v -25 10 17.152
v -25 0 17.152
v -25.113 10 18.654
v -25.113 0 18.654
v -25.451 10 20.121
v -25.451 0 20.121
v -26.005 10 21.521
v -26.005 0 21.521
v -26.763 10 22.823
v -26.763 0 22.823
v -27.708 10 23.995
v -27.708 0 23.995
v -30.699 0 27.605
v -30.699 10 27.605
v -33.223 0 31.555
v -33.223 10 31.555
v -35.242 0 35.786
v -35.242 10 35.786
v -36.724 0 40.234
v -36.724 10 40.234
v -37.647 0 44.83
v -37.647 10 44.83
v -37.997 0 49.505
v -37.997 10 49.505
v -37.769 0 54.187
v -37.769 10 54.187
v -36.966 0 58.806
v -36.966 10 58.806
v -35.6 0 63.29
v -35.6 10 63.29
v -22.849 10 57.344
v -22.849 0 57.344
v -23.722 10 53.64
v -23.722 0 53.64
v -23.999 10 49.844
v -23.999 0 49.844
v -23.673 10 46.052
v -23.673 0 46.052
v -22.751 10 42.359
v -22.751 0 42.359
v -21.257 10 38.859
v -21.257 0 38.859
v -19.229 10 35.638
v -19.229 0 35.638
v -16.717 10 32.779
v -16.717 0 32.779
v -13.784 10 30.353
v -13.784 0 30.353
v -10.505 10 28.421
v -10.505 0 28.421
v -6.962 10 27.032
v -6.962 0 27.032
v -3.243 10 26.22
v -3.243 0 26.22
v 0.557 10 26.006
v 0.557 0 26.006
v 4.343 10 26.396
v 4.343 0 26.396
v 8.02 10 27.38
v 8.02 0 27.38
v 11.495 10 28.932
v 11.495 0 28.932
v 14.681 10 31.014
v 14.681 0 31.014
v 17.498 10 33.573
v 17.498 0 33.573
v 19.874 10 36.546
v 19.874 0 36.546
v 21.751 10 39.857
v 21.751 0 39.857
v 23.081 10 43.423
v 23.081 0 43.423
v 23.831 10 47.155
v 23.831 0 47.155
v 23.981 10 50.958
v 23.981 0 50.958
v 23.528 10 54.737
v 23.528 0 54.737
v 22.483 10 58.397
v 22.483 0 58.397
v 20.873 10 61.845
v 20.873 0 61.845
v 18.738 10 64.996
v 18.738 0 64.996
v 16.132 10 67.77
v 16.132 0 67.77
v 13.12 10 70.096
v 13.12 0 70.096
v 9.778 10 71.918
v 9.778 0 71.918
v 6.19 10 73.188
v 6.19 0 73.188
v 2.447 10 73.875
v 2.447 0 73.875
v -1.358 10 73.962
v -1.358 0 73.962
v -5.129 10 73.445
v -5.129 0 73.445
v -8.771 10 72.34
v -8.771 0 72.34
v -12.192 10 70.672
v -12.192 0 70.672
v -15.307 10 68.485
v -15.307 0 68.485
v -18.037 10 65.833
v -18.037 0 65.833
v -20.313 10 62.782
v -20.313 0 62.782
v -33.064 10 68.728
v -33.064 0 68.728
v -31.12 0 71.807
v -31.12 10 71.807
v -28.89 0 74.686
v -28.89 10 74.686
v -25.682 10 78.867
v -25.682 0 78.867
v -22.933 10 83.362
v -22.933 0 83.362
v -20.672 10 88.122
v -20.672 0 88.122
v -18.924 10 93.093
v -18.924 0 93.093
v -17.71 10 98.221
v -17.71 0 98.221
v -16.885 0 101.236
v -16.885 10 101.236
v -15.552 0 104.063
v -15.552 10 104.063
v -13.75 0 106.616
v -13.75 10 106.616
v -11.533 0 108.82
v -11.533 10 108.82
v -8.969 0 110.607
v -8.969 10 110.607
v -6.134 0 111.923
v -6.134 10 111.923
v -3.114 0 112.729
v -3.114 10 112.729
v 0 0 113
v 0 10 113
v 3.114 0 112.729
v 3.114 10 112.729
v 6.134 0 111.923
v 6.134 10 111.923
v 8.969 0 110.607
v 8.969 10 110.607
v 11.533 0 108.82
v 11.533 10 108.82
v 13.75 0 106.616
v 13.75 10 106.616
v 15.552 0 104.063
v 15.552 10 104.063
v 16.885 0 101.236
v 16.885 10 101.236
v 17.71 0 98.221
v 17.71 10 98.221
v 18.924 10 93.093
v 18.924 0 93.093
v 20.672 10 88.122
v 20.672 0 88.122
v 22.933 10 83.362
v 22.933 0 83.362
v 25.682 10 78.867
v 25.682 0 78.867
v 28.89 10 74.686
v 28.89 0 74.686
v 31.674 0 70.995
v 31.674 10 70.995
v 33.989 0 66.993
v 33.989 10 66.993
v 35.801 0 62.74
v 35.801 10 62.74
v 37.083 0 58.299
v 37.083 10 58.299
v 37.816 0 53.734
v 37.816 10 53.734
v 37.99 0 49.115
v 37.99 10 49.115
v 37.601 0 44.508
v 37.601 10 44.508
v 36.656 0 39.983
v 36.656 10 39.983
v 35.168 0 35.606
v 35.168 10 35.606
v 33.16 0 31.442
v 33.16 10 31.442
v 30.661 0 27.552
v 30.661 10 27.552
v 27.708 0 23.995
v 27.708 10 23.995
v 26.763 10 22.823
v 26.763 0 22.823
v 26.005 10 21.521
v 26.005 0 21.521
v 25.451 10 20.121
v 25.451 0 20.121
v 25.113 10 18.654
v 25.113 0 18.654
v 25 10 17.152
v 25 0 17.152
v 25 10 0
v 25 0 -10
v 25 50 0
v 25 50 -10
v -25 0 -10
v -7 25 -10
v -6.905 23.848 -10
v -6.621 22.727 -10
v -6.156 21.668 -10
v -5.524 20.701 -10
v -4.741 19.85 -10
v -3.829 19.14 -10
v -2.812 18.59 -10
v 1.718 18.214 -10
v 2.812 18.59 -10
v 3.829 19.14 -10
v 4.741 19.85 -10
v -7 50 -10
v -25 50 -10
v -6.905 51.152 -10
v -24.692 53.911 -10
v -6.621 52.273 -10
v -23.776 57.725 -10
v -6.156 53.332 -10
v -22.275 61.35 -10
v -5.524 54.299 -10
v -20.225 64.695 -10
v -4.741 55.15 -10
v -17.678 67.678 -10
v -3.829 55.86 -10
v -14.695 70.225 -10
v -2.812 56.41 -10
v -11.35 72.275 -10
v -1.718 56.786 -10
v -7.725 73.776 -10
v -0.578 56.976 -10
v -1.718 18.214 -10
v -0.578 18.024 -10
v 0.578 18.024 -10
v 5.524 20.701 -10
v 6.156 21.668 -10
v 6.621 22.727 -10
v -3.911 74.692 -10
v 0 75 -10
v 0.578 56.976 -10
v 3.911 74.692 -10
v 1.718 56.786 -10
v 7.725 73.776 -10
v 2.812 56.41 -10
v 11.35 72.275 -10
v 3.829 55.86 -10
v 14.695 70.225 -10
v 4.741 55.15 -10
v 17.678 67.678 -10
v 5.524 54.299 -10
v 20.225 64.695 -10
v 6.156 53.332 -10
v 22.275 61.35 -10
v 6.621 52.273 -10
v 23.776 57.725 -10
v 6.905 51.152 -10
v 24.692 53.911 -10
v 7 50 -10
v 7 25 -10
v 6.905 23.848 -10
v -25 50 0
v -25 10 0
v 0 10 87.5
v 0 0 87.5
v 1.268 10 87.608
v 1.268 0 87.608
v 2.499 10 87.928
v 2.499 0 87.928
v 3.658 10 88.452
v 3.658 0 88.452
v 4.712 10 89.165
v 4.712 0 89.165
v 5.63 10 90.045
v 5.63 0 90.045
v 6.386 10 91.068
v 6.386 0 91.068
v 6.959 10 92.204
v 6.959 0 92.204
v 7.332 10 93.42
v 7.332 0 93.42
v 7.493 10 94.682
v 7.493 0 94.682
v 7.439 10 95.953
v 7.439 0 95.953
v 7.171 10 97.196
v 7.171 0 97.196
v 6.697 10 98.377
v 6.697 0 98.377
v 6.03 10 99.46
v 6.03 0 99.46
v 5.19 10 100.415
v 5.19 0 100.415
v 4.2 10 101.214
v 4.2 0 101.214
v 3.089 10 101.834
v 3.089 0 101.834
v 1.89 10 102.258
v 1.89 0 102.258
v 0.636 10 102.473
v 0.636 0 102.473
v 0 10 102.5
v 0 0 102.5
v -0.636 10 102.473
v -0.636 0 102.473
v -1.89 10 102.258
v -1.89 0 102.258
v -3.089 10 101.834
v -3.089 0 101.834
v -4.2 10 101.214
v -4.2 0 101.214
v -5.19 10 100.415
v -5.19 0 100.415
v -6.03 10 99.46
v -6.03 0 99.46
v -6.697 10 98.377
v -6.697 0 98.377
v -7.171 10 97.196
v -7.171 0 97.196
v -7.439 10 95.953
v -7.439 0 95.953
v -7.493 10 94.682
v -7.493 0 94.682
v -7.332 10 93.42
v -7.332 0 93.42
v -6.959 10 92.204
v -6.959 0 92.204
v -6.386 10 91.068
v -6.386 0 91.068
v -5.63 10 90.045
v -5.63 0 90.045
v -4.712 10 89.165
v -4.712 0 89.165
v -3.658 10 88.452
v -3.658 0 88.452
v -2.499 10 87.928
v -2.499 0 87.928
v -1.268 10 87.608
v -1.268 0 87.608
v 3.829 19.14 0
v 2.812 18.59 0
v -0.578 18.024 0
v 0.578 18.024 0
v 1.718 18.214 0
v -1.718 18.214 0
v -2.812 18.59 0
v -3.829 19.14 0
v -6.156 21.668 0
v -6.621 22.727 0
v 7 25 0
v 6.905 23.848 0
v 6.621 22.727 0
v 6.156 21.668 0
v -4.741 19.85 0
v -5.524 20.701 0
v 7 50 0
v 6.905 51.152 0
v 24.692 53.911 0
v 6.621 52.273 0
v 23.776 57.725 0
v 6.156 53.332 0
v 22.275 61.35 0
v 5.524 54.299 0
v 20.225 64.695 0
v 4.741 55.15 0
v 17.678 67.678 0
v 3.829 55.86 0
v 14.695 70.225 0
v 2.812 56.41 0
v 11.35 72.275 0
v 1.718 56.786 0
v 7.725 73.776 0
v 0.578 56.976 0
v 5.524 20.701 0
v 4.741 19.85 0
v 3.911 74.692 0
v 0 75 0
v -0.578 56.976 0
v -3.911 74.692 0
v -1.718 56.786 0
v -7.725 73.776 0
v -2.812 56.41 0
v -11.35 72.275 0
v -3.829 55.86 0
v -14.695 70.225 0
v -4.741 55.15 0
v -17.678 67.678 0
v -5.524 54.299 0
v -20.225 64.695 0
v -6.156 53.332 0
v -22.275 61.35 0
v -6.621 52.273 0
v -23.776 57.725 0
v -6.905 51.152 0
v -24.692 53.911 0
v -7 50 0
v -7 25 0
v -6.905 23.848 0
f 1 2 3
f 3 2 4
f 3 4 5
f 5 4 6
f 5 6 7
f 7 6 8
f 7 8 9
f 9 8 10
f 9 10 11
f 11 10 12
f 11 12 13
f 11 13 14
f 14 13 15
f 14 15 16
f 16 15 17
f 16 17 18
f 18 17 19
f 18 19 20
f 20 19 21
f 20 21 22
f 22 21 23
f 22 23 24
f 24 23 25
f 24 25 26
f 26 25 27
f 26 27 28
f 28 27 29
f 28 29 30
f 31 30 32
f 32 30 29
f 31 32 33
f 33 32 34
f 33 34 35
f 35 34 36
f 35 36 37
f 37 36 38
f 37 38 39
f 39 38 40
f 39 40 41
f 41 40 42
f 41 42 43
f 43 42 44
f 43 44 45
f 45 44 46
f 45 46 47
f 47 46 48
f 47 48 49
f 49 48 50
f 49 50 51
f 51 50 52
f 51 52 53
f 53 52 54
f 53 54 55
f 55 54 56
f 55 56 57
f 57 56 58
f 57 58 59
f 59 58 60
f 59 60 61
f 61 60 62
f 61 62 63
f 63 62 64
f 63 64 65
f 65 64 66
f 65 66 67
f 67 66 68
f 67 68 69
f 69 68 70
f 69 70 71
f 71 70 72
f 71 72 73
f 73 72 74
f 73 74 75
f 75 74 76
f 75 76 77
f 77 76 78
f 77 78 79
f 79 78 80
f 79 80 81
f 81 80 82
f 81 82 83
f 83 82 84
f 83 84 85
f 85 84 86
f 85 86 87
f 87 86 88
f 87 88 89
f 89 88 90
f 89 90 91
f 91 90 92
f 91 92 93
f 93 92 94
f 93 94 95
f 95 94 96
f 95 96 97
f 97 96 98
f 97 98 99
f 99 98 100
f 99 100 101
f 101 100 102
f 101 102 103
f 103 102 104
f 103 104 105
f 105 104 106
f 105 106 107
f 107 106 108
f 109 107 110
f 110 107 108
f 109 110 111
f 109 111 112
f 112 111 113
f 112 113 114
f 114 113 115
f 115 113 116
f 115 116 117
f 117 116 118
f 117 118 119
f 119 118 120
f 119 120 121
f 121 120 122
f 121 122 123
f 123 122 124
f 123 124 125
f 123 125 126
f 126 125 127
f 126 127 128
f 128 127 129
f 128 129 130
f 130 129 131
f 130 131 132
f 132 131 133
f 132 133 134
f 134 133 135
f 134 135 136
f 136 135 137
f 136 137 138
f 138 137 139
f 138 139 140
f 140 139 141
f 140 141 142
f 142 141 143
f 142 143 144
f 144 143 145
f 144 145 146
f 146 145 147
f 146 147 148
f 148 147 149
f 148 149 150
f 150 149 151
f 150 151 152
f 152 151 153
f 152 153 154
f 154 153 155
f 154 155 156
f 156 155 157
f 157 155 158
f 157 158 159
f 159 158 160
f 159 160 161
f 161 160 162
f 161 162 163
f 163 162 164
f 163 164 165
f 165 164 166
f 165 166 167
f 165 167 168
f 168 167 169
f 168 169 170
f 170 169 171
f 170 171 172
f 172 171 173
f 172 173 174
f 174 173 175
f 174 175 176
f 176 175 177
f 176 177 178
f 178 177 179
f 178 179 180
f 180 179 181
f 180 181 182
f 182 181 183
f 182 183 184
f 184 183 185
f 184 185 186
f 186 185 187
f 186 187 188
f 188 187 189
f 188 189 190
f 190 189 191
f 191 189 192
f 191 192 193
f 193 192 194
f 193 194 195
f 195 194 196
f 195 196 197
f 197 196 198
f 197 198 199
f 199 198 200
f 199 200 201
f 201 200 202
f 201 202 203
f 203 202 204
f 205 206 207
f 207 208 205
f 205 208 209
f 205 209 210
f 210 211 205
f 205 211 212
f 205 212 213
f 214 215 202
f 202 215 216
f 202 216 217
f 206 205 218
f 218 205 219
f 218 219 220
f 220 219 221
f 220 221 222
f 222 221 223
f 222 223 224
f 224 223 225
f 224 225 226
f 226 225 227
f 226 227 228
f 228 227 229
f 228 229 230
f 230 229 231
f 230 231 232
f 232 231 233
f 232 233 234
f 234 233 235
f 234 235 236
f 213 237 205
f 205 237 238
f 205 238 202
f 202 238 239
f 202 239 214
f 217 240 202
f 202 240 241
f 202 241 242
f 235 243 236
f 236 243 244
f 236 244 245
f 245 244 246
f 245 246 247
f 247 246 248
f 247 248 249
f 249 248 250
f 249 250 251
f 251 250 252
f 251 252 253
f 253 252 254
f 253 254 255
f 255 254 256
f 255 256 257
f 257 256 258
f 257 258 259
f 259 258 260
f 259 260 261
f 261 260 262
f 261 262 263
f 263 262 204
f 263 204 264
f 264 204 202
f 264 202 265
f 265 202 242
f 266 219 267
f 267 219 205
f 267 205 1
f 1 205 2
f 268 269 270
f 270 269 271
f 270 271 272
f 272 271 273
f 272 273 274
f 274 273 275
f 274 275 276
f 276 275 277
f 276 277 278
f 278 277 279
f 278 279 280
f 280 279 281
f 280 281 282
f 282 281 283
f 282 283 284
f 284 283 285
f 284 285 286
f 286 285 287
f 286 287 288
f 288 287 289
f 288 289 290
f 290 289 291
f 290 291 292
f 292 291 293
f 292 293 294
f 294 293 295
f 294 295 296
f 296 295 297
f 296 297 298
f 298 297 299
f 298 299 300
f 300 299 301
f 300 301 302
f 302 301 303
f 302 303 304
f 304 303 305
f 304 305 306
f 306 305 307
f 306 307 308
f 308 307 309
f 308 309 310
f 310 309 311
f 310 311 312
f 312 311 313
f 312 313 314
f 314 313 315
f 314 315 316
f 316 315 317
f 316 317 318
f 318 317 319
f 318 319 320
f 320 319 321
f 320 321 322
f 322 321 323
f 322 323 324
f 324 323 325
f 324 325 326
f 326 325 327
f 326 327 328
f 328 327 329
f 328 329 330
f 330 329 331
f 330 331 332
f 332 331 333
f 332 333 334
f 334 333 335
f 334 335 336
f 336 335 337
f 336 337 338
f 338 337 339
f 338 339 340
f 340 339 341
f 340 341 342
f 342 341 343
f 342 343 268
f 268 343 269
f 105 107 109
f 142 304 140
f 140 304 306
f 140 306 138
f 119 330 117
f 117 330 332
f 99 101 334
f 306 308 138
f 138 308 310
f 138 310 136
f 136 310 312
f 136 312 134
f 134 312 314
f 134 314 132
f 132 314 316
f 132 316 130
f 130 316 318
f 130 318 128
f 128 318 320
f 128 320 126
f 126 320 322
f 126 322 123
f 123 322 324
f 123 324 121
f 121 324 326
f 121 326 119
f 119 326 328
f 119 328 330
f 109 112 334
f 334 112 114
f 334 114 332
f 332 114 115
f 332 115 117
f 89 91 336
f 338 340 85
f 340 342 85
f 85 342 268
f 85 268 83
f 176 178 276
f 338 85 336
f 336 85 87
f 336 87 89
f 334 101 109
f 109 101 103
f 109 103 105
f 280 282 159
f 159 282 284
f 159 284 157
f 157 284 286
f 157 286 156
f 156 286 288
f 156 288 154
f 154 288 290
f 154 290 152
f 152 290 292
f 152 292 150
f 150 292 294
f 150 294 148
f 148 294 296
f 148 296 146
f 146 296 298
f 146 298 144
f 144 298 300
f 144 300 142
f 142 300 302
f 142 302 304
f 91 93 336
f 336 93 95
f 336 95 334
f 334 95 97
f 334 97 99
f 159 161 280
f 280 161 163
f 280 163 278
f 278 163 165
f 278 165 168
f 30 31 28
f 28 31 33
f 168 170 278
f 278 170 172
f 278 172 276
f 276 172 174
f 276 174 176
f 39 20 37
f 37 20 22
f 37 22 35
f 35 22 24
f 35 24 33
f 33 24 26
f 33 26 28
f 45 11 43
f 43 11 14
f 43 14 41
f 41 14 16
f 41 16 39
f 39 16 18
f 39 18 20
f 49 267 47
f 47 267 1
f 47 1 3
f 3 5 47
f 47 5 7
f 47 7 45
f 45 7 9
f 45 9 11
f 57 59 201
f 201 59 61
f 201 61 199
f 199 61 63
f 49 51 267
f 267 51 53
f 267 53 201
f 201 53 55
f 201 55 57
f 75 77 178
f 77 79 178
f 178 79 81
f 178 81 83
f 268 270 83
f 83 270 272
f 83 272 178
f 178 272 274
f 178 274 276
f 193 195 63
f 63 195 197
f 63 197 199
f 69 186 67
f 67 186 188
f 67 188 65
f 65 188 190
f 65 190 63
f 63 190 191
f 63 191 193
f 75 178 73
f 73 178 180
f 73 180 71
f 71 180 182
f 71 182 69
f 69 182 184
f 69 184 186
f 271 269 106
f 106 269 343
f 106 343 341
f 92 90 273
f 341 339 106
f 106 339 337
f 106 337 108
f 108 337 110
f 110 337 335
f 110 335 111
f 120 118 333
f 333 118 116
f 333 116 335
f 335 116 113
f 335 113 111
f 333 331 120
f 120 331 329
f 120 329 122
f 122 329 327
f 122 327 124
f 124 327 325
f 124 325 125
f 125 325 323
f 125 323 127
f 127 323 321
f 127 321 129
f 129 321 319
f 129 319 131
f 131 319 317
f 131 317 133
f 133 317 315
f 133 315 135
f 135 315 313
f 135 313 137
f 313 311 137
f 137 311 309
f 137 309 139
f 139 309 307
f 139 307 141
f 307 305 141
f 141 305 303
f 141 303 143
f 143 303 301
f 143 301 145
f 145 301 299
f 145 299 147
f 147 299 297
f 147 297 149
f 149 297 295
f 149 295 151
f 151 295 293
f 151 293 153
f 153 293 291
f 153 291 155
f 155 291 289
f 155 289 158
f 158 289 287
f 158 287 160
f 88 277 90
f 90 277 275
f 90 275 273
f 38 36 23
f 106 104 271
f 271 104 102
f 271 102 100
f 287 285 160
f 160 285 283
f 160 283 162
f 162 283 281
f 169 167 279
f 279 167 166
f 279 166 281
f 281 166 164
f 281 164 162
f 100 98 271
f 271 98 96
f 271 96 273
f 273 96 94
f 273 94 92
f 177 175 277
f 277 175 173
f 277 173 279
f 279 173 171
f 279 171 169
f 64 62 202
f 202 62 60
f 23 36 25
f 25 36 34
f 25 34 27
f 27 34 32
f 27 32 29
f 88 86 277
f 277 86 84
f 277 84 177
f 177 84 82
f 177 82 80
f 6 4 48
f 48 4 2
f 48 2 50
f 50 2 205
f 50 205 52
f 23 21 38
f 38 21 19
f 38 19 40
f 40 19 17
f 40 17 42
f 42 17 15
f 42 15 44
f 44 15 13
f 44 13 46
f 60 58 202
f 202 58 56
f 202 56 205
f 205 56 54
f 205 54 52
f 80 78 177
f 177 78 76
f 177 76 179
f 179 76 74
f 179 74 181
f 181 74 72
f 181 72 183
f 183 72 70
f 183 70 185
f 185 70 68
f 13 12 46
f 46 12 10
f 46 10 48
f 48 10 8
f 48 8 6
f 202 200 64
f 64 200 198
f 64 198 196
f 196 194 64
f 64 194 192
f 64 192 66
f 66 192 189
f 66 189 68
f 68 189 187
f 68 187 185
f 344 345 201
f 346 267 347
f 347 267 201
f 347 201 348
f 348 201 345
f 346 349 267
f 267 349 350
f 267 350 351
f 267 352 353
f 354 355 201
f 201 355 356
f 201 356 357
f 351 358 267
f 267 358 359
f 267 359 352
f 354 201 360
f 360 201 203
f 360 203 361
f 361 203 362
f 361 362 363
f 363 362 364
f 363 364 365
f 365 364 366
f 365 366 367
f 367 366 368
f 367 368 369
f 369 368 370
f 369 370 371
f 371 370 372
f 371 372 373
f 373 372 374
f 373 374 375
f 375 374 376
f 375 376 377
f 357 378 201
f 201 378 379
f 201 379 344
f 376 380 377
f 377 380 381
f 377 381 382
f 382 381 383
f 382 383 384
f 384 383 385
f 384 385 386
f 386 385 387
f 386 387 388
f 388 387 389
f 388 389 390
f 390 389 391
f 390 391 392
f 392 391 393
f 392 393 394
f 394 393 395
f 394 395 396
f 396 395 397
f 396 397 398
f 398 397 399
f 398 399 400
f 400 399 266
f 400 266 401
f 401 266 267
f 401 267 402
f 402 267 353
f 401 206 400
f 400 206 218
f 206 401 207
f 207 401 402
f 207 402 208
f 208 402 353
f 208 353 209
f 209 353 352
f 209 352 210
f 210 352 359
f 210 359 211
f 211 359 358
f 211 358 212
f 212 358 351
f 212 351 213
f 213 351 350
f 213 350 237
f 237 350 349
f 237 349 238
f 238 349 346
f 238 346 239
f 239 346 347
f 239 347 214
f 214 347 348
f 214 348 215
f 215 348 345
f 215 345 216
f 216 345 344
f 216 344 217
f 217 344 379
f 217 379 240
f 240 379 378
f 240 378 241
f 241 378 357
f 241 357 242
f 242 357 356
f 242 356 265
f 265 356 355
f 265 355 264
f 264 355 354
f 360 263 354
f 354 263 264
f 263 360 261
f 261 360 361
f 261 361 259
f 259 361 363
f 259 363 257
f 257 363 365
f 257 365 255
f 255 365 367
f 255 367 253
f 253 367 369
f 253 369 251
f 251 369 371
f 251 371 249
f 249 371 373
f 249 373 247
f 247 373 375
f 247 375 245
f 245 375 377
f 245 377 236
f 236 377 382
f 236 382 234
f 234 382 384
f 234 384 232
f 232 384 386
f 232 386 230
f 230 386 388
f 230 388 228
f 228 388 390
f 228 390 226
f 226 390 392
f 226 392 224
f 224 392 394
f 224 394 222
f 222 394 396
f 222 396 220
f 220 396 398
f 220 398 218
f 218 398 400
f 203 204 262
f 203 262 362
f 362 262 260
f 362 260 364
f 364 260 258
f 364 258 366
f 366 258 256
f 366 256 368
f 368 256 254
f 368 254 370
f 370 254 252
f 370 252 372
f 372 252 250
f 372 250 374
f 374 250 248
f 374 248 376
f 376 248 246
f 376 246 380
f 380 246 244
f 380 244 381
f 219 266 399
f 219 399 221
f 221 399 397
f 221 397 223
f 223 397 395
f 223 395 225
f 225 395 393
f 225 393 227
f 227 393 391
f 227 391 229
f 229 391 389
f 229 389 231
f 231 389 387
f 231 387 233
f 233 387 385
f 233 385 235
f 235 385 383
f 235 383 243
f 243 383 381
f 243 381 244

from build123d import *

# Parameters (mm, degrees)
SKETCH1_W           = 50
SKETCH1_H           = 10
SKETCH1_R           = 7.5
BOSS_EXTRUDE1_DEPTH = 10
SKETCH1_3_W         = 50
SKETCH1_3_H         = 10
BOSS_EXTRUDE2_DEPTH = 75
CUT_EXTRUDE1_DEPTH  = 10
FILLET1_R           = 25


with BuildPart() as part:
    # Sketch1 → Boss-Extrude1 (new body)
    # profile 1 of 3: a face of its own
    with BuildSketch(Plane(origin=(0, 0, 0), x_dir=(1, 0, 0), z_dir=(0, 1, 0))):
        with BuildLine():
            Line((25, -17.151864589), (25, 0))
            Line((25, 0), (-25, 0))
            Line((-25, 0), (-25, -17.151864589))
            ThreePointArc((-25, -17.151864589), (-25.701702665, -20.83176495), (-27.708333333, -23.995226133))
            ThreePointArc((-27.708333333, -23.995226133), (0, -12), (27.708333333, -23.995226133))
            ThreePointArc((27.708333333, -23.995226133), (25.701702665, -20.83176495), (25, -17.151864589))
        make_face()
    # profile 2 of 3: a face of its own
    with BuildSketch(Plane(origin=(0, 0, 0), x_dir=(1, 0, 0), z_dir=(0, 1, 0))):
        with Locations((0, 5)):
            Rectangle(SKETCH1_W, SKETCH1_H)
    # profile 3 of 3: a face of its own
    with BuildSketch(Plane(origin=(0, 0, 0), x_dir=(1, 0, 0), z_dir=(0, 1, 0))):
        with BuildLine():
            ThreePointArc((35.600057015, -63.29044546), (37.256095308, -42.517796957), (27.708333333, -23.995226133))
            ThreePointArc((27.708333333, -23.995226133), (0, -12), (-27.708333333, -23.995226133))
            ThreePointArc((-27.708333333, -23.995226133), (-37.256095308, -42.517796957), (-35.600057015, -63.29044546))
            Line((-35.600057015, -63.29044546), (-22.848639927, -57.34436202))
            ThreePointArc((-22.848639927, -57.34436202), (21.751386889, -39.857161718), (-20.312930357, -62.782208742))
            Line((-20.312930357, -62.782208742), (-33.064347445, -68.728292182))
            ThreePointArc((-33.064347445, -68.728292182), (-31.119955968, -71.807070885), (-28.889805354, -74.685606061))
            ThreePointArc((-28.889805354, -74.685606061), (-21.739686255, -85.712027428), (-17.709540124, -98.220588235))
            ThreePointArc((-17.709540124, -98.220588235), (0, -113), (17.709540124, -98.220588235))
            ThreePointArc((17.709540124, -98.220588235), (21.739686255, -85.712027428), (28.889805354, -74.685606061))
            ThreePointArc((28.889805354, -74.685606061), (31.119955968, -71.807070885), (33.064347445, -68.728292182))
            ThreePointArc((33.064347445, -68.728292182), (34.439695907, -66.059493946), (35.600057015, -63.29044546))
        make_face()
        with Locations(Location((0, -95, 0), (0, 0, 270))):
            Circle(SKETCH1_R, mode=Mode.SUBTRACT)
    extrude(amount=BOSS_EXTRUDE1_DEPTH)

    # Sketch1<3> → Boss-Extrude2 (add)
    with BuildSketch(Plane(origin=(0, 0, 0), x_dir=(1, 0, 0), z_dir=(0, 1, 0))):
        with Locations((0, 5)):
            Rectangle(SKETCH1_3_W, SKETCH1_3_H)
    extrude(amount=BOSS_EXTRUDE2_DEPTH)

    # Sketch2 → Cut-Extrude1 (cut)
    with BuildSketch(Plane.XY):
        with BuildLine():
            Line((7, 50), (7, 25))
            ThreePointArc((7, 25), (0, 18), (-7, 25))
            Line((-7, 25), (-7, 50))
            ThreePointArc((-7, 50), (0, 57), (7, 50))
        make_face()
    extrude(amount=-CUT_EXTRUDE1_DEPTH, mode=Mode.SUBTRACT)

    # Fillet1
    fillet1_edges = [part.edges().sort_by_distance(p)[0] for p in [
        (-25, 75, -5),
        (25, 75, -5),
    ]]
    fillet(fillet1_edges, radius=FILLET1_R - 0.0001)  # a hair under: the kernel refuses the full size


solid = part.part
